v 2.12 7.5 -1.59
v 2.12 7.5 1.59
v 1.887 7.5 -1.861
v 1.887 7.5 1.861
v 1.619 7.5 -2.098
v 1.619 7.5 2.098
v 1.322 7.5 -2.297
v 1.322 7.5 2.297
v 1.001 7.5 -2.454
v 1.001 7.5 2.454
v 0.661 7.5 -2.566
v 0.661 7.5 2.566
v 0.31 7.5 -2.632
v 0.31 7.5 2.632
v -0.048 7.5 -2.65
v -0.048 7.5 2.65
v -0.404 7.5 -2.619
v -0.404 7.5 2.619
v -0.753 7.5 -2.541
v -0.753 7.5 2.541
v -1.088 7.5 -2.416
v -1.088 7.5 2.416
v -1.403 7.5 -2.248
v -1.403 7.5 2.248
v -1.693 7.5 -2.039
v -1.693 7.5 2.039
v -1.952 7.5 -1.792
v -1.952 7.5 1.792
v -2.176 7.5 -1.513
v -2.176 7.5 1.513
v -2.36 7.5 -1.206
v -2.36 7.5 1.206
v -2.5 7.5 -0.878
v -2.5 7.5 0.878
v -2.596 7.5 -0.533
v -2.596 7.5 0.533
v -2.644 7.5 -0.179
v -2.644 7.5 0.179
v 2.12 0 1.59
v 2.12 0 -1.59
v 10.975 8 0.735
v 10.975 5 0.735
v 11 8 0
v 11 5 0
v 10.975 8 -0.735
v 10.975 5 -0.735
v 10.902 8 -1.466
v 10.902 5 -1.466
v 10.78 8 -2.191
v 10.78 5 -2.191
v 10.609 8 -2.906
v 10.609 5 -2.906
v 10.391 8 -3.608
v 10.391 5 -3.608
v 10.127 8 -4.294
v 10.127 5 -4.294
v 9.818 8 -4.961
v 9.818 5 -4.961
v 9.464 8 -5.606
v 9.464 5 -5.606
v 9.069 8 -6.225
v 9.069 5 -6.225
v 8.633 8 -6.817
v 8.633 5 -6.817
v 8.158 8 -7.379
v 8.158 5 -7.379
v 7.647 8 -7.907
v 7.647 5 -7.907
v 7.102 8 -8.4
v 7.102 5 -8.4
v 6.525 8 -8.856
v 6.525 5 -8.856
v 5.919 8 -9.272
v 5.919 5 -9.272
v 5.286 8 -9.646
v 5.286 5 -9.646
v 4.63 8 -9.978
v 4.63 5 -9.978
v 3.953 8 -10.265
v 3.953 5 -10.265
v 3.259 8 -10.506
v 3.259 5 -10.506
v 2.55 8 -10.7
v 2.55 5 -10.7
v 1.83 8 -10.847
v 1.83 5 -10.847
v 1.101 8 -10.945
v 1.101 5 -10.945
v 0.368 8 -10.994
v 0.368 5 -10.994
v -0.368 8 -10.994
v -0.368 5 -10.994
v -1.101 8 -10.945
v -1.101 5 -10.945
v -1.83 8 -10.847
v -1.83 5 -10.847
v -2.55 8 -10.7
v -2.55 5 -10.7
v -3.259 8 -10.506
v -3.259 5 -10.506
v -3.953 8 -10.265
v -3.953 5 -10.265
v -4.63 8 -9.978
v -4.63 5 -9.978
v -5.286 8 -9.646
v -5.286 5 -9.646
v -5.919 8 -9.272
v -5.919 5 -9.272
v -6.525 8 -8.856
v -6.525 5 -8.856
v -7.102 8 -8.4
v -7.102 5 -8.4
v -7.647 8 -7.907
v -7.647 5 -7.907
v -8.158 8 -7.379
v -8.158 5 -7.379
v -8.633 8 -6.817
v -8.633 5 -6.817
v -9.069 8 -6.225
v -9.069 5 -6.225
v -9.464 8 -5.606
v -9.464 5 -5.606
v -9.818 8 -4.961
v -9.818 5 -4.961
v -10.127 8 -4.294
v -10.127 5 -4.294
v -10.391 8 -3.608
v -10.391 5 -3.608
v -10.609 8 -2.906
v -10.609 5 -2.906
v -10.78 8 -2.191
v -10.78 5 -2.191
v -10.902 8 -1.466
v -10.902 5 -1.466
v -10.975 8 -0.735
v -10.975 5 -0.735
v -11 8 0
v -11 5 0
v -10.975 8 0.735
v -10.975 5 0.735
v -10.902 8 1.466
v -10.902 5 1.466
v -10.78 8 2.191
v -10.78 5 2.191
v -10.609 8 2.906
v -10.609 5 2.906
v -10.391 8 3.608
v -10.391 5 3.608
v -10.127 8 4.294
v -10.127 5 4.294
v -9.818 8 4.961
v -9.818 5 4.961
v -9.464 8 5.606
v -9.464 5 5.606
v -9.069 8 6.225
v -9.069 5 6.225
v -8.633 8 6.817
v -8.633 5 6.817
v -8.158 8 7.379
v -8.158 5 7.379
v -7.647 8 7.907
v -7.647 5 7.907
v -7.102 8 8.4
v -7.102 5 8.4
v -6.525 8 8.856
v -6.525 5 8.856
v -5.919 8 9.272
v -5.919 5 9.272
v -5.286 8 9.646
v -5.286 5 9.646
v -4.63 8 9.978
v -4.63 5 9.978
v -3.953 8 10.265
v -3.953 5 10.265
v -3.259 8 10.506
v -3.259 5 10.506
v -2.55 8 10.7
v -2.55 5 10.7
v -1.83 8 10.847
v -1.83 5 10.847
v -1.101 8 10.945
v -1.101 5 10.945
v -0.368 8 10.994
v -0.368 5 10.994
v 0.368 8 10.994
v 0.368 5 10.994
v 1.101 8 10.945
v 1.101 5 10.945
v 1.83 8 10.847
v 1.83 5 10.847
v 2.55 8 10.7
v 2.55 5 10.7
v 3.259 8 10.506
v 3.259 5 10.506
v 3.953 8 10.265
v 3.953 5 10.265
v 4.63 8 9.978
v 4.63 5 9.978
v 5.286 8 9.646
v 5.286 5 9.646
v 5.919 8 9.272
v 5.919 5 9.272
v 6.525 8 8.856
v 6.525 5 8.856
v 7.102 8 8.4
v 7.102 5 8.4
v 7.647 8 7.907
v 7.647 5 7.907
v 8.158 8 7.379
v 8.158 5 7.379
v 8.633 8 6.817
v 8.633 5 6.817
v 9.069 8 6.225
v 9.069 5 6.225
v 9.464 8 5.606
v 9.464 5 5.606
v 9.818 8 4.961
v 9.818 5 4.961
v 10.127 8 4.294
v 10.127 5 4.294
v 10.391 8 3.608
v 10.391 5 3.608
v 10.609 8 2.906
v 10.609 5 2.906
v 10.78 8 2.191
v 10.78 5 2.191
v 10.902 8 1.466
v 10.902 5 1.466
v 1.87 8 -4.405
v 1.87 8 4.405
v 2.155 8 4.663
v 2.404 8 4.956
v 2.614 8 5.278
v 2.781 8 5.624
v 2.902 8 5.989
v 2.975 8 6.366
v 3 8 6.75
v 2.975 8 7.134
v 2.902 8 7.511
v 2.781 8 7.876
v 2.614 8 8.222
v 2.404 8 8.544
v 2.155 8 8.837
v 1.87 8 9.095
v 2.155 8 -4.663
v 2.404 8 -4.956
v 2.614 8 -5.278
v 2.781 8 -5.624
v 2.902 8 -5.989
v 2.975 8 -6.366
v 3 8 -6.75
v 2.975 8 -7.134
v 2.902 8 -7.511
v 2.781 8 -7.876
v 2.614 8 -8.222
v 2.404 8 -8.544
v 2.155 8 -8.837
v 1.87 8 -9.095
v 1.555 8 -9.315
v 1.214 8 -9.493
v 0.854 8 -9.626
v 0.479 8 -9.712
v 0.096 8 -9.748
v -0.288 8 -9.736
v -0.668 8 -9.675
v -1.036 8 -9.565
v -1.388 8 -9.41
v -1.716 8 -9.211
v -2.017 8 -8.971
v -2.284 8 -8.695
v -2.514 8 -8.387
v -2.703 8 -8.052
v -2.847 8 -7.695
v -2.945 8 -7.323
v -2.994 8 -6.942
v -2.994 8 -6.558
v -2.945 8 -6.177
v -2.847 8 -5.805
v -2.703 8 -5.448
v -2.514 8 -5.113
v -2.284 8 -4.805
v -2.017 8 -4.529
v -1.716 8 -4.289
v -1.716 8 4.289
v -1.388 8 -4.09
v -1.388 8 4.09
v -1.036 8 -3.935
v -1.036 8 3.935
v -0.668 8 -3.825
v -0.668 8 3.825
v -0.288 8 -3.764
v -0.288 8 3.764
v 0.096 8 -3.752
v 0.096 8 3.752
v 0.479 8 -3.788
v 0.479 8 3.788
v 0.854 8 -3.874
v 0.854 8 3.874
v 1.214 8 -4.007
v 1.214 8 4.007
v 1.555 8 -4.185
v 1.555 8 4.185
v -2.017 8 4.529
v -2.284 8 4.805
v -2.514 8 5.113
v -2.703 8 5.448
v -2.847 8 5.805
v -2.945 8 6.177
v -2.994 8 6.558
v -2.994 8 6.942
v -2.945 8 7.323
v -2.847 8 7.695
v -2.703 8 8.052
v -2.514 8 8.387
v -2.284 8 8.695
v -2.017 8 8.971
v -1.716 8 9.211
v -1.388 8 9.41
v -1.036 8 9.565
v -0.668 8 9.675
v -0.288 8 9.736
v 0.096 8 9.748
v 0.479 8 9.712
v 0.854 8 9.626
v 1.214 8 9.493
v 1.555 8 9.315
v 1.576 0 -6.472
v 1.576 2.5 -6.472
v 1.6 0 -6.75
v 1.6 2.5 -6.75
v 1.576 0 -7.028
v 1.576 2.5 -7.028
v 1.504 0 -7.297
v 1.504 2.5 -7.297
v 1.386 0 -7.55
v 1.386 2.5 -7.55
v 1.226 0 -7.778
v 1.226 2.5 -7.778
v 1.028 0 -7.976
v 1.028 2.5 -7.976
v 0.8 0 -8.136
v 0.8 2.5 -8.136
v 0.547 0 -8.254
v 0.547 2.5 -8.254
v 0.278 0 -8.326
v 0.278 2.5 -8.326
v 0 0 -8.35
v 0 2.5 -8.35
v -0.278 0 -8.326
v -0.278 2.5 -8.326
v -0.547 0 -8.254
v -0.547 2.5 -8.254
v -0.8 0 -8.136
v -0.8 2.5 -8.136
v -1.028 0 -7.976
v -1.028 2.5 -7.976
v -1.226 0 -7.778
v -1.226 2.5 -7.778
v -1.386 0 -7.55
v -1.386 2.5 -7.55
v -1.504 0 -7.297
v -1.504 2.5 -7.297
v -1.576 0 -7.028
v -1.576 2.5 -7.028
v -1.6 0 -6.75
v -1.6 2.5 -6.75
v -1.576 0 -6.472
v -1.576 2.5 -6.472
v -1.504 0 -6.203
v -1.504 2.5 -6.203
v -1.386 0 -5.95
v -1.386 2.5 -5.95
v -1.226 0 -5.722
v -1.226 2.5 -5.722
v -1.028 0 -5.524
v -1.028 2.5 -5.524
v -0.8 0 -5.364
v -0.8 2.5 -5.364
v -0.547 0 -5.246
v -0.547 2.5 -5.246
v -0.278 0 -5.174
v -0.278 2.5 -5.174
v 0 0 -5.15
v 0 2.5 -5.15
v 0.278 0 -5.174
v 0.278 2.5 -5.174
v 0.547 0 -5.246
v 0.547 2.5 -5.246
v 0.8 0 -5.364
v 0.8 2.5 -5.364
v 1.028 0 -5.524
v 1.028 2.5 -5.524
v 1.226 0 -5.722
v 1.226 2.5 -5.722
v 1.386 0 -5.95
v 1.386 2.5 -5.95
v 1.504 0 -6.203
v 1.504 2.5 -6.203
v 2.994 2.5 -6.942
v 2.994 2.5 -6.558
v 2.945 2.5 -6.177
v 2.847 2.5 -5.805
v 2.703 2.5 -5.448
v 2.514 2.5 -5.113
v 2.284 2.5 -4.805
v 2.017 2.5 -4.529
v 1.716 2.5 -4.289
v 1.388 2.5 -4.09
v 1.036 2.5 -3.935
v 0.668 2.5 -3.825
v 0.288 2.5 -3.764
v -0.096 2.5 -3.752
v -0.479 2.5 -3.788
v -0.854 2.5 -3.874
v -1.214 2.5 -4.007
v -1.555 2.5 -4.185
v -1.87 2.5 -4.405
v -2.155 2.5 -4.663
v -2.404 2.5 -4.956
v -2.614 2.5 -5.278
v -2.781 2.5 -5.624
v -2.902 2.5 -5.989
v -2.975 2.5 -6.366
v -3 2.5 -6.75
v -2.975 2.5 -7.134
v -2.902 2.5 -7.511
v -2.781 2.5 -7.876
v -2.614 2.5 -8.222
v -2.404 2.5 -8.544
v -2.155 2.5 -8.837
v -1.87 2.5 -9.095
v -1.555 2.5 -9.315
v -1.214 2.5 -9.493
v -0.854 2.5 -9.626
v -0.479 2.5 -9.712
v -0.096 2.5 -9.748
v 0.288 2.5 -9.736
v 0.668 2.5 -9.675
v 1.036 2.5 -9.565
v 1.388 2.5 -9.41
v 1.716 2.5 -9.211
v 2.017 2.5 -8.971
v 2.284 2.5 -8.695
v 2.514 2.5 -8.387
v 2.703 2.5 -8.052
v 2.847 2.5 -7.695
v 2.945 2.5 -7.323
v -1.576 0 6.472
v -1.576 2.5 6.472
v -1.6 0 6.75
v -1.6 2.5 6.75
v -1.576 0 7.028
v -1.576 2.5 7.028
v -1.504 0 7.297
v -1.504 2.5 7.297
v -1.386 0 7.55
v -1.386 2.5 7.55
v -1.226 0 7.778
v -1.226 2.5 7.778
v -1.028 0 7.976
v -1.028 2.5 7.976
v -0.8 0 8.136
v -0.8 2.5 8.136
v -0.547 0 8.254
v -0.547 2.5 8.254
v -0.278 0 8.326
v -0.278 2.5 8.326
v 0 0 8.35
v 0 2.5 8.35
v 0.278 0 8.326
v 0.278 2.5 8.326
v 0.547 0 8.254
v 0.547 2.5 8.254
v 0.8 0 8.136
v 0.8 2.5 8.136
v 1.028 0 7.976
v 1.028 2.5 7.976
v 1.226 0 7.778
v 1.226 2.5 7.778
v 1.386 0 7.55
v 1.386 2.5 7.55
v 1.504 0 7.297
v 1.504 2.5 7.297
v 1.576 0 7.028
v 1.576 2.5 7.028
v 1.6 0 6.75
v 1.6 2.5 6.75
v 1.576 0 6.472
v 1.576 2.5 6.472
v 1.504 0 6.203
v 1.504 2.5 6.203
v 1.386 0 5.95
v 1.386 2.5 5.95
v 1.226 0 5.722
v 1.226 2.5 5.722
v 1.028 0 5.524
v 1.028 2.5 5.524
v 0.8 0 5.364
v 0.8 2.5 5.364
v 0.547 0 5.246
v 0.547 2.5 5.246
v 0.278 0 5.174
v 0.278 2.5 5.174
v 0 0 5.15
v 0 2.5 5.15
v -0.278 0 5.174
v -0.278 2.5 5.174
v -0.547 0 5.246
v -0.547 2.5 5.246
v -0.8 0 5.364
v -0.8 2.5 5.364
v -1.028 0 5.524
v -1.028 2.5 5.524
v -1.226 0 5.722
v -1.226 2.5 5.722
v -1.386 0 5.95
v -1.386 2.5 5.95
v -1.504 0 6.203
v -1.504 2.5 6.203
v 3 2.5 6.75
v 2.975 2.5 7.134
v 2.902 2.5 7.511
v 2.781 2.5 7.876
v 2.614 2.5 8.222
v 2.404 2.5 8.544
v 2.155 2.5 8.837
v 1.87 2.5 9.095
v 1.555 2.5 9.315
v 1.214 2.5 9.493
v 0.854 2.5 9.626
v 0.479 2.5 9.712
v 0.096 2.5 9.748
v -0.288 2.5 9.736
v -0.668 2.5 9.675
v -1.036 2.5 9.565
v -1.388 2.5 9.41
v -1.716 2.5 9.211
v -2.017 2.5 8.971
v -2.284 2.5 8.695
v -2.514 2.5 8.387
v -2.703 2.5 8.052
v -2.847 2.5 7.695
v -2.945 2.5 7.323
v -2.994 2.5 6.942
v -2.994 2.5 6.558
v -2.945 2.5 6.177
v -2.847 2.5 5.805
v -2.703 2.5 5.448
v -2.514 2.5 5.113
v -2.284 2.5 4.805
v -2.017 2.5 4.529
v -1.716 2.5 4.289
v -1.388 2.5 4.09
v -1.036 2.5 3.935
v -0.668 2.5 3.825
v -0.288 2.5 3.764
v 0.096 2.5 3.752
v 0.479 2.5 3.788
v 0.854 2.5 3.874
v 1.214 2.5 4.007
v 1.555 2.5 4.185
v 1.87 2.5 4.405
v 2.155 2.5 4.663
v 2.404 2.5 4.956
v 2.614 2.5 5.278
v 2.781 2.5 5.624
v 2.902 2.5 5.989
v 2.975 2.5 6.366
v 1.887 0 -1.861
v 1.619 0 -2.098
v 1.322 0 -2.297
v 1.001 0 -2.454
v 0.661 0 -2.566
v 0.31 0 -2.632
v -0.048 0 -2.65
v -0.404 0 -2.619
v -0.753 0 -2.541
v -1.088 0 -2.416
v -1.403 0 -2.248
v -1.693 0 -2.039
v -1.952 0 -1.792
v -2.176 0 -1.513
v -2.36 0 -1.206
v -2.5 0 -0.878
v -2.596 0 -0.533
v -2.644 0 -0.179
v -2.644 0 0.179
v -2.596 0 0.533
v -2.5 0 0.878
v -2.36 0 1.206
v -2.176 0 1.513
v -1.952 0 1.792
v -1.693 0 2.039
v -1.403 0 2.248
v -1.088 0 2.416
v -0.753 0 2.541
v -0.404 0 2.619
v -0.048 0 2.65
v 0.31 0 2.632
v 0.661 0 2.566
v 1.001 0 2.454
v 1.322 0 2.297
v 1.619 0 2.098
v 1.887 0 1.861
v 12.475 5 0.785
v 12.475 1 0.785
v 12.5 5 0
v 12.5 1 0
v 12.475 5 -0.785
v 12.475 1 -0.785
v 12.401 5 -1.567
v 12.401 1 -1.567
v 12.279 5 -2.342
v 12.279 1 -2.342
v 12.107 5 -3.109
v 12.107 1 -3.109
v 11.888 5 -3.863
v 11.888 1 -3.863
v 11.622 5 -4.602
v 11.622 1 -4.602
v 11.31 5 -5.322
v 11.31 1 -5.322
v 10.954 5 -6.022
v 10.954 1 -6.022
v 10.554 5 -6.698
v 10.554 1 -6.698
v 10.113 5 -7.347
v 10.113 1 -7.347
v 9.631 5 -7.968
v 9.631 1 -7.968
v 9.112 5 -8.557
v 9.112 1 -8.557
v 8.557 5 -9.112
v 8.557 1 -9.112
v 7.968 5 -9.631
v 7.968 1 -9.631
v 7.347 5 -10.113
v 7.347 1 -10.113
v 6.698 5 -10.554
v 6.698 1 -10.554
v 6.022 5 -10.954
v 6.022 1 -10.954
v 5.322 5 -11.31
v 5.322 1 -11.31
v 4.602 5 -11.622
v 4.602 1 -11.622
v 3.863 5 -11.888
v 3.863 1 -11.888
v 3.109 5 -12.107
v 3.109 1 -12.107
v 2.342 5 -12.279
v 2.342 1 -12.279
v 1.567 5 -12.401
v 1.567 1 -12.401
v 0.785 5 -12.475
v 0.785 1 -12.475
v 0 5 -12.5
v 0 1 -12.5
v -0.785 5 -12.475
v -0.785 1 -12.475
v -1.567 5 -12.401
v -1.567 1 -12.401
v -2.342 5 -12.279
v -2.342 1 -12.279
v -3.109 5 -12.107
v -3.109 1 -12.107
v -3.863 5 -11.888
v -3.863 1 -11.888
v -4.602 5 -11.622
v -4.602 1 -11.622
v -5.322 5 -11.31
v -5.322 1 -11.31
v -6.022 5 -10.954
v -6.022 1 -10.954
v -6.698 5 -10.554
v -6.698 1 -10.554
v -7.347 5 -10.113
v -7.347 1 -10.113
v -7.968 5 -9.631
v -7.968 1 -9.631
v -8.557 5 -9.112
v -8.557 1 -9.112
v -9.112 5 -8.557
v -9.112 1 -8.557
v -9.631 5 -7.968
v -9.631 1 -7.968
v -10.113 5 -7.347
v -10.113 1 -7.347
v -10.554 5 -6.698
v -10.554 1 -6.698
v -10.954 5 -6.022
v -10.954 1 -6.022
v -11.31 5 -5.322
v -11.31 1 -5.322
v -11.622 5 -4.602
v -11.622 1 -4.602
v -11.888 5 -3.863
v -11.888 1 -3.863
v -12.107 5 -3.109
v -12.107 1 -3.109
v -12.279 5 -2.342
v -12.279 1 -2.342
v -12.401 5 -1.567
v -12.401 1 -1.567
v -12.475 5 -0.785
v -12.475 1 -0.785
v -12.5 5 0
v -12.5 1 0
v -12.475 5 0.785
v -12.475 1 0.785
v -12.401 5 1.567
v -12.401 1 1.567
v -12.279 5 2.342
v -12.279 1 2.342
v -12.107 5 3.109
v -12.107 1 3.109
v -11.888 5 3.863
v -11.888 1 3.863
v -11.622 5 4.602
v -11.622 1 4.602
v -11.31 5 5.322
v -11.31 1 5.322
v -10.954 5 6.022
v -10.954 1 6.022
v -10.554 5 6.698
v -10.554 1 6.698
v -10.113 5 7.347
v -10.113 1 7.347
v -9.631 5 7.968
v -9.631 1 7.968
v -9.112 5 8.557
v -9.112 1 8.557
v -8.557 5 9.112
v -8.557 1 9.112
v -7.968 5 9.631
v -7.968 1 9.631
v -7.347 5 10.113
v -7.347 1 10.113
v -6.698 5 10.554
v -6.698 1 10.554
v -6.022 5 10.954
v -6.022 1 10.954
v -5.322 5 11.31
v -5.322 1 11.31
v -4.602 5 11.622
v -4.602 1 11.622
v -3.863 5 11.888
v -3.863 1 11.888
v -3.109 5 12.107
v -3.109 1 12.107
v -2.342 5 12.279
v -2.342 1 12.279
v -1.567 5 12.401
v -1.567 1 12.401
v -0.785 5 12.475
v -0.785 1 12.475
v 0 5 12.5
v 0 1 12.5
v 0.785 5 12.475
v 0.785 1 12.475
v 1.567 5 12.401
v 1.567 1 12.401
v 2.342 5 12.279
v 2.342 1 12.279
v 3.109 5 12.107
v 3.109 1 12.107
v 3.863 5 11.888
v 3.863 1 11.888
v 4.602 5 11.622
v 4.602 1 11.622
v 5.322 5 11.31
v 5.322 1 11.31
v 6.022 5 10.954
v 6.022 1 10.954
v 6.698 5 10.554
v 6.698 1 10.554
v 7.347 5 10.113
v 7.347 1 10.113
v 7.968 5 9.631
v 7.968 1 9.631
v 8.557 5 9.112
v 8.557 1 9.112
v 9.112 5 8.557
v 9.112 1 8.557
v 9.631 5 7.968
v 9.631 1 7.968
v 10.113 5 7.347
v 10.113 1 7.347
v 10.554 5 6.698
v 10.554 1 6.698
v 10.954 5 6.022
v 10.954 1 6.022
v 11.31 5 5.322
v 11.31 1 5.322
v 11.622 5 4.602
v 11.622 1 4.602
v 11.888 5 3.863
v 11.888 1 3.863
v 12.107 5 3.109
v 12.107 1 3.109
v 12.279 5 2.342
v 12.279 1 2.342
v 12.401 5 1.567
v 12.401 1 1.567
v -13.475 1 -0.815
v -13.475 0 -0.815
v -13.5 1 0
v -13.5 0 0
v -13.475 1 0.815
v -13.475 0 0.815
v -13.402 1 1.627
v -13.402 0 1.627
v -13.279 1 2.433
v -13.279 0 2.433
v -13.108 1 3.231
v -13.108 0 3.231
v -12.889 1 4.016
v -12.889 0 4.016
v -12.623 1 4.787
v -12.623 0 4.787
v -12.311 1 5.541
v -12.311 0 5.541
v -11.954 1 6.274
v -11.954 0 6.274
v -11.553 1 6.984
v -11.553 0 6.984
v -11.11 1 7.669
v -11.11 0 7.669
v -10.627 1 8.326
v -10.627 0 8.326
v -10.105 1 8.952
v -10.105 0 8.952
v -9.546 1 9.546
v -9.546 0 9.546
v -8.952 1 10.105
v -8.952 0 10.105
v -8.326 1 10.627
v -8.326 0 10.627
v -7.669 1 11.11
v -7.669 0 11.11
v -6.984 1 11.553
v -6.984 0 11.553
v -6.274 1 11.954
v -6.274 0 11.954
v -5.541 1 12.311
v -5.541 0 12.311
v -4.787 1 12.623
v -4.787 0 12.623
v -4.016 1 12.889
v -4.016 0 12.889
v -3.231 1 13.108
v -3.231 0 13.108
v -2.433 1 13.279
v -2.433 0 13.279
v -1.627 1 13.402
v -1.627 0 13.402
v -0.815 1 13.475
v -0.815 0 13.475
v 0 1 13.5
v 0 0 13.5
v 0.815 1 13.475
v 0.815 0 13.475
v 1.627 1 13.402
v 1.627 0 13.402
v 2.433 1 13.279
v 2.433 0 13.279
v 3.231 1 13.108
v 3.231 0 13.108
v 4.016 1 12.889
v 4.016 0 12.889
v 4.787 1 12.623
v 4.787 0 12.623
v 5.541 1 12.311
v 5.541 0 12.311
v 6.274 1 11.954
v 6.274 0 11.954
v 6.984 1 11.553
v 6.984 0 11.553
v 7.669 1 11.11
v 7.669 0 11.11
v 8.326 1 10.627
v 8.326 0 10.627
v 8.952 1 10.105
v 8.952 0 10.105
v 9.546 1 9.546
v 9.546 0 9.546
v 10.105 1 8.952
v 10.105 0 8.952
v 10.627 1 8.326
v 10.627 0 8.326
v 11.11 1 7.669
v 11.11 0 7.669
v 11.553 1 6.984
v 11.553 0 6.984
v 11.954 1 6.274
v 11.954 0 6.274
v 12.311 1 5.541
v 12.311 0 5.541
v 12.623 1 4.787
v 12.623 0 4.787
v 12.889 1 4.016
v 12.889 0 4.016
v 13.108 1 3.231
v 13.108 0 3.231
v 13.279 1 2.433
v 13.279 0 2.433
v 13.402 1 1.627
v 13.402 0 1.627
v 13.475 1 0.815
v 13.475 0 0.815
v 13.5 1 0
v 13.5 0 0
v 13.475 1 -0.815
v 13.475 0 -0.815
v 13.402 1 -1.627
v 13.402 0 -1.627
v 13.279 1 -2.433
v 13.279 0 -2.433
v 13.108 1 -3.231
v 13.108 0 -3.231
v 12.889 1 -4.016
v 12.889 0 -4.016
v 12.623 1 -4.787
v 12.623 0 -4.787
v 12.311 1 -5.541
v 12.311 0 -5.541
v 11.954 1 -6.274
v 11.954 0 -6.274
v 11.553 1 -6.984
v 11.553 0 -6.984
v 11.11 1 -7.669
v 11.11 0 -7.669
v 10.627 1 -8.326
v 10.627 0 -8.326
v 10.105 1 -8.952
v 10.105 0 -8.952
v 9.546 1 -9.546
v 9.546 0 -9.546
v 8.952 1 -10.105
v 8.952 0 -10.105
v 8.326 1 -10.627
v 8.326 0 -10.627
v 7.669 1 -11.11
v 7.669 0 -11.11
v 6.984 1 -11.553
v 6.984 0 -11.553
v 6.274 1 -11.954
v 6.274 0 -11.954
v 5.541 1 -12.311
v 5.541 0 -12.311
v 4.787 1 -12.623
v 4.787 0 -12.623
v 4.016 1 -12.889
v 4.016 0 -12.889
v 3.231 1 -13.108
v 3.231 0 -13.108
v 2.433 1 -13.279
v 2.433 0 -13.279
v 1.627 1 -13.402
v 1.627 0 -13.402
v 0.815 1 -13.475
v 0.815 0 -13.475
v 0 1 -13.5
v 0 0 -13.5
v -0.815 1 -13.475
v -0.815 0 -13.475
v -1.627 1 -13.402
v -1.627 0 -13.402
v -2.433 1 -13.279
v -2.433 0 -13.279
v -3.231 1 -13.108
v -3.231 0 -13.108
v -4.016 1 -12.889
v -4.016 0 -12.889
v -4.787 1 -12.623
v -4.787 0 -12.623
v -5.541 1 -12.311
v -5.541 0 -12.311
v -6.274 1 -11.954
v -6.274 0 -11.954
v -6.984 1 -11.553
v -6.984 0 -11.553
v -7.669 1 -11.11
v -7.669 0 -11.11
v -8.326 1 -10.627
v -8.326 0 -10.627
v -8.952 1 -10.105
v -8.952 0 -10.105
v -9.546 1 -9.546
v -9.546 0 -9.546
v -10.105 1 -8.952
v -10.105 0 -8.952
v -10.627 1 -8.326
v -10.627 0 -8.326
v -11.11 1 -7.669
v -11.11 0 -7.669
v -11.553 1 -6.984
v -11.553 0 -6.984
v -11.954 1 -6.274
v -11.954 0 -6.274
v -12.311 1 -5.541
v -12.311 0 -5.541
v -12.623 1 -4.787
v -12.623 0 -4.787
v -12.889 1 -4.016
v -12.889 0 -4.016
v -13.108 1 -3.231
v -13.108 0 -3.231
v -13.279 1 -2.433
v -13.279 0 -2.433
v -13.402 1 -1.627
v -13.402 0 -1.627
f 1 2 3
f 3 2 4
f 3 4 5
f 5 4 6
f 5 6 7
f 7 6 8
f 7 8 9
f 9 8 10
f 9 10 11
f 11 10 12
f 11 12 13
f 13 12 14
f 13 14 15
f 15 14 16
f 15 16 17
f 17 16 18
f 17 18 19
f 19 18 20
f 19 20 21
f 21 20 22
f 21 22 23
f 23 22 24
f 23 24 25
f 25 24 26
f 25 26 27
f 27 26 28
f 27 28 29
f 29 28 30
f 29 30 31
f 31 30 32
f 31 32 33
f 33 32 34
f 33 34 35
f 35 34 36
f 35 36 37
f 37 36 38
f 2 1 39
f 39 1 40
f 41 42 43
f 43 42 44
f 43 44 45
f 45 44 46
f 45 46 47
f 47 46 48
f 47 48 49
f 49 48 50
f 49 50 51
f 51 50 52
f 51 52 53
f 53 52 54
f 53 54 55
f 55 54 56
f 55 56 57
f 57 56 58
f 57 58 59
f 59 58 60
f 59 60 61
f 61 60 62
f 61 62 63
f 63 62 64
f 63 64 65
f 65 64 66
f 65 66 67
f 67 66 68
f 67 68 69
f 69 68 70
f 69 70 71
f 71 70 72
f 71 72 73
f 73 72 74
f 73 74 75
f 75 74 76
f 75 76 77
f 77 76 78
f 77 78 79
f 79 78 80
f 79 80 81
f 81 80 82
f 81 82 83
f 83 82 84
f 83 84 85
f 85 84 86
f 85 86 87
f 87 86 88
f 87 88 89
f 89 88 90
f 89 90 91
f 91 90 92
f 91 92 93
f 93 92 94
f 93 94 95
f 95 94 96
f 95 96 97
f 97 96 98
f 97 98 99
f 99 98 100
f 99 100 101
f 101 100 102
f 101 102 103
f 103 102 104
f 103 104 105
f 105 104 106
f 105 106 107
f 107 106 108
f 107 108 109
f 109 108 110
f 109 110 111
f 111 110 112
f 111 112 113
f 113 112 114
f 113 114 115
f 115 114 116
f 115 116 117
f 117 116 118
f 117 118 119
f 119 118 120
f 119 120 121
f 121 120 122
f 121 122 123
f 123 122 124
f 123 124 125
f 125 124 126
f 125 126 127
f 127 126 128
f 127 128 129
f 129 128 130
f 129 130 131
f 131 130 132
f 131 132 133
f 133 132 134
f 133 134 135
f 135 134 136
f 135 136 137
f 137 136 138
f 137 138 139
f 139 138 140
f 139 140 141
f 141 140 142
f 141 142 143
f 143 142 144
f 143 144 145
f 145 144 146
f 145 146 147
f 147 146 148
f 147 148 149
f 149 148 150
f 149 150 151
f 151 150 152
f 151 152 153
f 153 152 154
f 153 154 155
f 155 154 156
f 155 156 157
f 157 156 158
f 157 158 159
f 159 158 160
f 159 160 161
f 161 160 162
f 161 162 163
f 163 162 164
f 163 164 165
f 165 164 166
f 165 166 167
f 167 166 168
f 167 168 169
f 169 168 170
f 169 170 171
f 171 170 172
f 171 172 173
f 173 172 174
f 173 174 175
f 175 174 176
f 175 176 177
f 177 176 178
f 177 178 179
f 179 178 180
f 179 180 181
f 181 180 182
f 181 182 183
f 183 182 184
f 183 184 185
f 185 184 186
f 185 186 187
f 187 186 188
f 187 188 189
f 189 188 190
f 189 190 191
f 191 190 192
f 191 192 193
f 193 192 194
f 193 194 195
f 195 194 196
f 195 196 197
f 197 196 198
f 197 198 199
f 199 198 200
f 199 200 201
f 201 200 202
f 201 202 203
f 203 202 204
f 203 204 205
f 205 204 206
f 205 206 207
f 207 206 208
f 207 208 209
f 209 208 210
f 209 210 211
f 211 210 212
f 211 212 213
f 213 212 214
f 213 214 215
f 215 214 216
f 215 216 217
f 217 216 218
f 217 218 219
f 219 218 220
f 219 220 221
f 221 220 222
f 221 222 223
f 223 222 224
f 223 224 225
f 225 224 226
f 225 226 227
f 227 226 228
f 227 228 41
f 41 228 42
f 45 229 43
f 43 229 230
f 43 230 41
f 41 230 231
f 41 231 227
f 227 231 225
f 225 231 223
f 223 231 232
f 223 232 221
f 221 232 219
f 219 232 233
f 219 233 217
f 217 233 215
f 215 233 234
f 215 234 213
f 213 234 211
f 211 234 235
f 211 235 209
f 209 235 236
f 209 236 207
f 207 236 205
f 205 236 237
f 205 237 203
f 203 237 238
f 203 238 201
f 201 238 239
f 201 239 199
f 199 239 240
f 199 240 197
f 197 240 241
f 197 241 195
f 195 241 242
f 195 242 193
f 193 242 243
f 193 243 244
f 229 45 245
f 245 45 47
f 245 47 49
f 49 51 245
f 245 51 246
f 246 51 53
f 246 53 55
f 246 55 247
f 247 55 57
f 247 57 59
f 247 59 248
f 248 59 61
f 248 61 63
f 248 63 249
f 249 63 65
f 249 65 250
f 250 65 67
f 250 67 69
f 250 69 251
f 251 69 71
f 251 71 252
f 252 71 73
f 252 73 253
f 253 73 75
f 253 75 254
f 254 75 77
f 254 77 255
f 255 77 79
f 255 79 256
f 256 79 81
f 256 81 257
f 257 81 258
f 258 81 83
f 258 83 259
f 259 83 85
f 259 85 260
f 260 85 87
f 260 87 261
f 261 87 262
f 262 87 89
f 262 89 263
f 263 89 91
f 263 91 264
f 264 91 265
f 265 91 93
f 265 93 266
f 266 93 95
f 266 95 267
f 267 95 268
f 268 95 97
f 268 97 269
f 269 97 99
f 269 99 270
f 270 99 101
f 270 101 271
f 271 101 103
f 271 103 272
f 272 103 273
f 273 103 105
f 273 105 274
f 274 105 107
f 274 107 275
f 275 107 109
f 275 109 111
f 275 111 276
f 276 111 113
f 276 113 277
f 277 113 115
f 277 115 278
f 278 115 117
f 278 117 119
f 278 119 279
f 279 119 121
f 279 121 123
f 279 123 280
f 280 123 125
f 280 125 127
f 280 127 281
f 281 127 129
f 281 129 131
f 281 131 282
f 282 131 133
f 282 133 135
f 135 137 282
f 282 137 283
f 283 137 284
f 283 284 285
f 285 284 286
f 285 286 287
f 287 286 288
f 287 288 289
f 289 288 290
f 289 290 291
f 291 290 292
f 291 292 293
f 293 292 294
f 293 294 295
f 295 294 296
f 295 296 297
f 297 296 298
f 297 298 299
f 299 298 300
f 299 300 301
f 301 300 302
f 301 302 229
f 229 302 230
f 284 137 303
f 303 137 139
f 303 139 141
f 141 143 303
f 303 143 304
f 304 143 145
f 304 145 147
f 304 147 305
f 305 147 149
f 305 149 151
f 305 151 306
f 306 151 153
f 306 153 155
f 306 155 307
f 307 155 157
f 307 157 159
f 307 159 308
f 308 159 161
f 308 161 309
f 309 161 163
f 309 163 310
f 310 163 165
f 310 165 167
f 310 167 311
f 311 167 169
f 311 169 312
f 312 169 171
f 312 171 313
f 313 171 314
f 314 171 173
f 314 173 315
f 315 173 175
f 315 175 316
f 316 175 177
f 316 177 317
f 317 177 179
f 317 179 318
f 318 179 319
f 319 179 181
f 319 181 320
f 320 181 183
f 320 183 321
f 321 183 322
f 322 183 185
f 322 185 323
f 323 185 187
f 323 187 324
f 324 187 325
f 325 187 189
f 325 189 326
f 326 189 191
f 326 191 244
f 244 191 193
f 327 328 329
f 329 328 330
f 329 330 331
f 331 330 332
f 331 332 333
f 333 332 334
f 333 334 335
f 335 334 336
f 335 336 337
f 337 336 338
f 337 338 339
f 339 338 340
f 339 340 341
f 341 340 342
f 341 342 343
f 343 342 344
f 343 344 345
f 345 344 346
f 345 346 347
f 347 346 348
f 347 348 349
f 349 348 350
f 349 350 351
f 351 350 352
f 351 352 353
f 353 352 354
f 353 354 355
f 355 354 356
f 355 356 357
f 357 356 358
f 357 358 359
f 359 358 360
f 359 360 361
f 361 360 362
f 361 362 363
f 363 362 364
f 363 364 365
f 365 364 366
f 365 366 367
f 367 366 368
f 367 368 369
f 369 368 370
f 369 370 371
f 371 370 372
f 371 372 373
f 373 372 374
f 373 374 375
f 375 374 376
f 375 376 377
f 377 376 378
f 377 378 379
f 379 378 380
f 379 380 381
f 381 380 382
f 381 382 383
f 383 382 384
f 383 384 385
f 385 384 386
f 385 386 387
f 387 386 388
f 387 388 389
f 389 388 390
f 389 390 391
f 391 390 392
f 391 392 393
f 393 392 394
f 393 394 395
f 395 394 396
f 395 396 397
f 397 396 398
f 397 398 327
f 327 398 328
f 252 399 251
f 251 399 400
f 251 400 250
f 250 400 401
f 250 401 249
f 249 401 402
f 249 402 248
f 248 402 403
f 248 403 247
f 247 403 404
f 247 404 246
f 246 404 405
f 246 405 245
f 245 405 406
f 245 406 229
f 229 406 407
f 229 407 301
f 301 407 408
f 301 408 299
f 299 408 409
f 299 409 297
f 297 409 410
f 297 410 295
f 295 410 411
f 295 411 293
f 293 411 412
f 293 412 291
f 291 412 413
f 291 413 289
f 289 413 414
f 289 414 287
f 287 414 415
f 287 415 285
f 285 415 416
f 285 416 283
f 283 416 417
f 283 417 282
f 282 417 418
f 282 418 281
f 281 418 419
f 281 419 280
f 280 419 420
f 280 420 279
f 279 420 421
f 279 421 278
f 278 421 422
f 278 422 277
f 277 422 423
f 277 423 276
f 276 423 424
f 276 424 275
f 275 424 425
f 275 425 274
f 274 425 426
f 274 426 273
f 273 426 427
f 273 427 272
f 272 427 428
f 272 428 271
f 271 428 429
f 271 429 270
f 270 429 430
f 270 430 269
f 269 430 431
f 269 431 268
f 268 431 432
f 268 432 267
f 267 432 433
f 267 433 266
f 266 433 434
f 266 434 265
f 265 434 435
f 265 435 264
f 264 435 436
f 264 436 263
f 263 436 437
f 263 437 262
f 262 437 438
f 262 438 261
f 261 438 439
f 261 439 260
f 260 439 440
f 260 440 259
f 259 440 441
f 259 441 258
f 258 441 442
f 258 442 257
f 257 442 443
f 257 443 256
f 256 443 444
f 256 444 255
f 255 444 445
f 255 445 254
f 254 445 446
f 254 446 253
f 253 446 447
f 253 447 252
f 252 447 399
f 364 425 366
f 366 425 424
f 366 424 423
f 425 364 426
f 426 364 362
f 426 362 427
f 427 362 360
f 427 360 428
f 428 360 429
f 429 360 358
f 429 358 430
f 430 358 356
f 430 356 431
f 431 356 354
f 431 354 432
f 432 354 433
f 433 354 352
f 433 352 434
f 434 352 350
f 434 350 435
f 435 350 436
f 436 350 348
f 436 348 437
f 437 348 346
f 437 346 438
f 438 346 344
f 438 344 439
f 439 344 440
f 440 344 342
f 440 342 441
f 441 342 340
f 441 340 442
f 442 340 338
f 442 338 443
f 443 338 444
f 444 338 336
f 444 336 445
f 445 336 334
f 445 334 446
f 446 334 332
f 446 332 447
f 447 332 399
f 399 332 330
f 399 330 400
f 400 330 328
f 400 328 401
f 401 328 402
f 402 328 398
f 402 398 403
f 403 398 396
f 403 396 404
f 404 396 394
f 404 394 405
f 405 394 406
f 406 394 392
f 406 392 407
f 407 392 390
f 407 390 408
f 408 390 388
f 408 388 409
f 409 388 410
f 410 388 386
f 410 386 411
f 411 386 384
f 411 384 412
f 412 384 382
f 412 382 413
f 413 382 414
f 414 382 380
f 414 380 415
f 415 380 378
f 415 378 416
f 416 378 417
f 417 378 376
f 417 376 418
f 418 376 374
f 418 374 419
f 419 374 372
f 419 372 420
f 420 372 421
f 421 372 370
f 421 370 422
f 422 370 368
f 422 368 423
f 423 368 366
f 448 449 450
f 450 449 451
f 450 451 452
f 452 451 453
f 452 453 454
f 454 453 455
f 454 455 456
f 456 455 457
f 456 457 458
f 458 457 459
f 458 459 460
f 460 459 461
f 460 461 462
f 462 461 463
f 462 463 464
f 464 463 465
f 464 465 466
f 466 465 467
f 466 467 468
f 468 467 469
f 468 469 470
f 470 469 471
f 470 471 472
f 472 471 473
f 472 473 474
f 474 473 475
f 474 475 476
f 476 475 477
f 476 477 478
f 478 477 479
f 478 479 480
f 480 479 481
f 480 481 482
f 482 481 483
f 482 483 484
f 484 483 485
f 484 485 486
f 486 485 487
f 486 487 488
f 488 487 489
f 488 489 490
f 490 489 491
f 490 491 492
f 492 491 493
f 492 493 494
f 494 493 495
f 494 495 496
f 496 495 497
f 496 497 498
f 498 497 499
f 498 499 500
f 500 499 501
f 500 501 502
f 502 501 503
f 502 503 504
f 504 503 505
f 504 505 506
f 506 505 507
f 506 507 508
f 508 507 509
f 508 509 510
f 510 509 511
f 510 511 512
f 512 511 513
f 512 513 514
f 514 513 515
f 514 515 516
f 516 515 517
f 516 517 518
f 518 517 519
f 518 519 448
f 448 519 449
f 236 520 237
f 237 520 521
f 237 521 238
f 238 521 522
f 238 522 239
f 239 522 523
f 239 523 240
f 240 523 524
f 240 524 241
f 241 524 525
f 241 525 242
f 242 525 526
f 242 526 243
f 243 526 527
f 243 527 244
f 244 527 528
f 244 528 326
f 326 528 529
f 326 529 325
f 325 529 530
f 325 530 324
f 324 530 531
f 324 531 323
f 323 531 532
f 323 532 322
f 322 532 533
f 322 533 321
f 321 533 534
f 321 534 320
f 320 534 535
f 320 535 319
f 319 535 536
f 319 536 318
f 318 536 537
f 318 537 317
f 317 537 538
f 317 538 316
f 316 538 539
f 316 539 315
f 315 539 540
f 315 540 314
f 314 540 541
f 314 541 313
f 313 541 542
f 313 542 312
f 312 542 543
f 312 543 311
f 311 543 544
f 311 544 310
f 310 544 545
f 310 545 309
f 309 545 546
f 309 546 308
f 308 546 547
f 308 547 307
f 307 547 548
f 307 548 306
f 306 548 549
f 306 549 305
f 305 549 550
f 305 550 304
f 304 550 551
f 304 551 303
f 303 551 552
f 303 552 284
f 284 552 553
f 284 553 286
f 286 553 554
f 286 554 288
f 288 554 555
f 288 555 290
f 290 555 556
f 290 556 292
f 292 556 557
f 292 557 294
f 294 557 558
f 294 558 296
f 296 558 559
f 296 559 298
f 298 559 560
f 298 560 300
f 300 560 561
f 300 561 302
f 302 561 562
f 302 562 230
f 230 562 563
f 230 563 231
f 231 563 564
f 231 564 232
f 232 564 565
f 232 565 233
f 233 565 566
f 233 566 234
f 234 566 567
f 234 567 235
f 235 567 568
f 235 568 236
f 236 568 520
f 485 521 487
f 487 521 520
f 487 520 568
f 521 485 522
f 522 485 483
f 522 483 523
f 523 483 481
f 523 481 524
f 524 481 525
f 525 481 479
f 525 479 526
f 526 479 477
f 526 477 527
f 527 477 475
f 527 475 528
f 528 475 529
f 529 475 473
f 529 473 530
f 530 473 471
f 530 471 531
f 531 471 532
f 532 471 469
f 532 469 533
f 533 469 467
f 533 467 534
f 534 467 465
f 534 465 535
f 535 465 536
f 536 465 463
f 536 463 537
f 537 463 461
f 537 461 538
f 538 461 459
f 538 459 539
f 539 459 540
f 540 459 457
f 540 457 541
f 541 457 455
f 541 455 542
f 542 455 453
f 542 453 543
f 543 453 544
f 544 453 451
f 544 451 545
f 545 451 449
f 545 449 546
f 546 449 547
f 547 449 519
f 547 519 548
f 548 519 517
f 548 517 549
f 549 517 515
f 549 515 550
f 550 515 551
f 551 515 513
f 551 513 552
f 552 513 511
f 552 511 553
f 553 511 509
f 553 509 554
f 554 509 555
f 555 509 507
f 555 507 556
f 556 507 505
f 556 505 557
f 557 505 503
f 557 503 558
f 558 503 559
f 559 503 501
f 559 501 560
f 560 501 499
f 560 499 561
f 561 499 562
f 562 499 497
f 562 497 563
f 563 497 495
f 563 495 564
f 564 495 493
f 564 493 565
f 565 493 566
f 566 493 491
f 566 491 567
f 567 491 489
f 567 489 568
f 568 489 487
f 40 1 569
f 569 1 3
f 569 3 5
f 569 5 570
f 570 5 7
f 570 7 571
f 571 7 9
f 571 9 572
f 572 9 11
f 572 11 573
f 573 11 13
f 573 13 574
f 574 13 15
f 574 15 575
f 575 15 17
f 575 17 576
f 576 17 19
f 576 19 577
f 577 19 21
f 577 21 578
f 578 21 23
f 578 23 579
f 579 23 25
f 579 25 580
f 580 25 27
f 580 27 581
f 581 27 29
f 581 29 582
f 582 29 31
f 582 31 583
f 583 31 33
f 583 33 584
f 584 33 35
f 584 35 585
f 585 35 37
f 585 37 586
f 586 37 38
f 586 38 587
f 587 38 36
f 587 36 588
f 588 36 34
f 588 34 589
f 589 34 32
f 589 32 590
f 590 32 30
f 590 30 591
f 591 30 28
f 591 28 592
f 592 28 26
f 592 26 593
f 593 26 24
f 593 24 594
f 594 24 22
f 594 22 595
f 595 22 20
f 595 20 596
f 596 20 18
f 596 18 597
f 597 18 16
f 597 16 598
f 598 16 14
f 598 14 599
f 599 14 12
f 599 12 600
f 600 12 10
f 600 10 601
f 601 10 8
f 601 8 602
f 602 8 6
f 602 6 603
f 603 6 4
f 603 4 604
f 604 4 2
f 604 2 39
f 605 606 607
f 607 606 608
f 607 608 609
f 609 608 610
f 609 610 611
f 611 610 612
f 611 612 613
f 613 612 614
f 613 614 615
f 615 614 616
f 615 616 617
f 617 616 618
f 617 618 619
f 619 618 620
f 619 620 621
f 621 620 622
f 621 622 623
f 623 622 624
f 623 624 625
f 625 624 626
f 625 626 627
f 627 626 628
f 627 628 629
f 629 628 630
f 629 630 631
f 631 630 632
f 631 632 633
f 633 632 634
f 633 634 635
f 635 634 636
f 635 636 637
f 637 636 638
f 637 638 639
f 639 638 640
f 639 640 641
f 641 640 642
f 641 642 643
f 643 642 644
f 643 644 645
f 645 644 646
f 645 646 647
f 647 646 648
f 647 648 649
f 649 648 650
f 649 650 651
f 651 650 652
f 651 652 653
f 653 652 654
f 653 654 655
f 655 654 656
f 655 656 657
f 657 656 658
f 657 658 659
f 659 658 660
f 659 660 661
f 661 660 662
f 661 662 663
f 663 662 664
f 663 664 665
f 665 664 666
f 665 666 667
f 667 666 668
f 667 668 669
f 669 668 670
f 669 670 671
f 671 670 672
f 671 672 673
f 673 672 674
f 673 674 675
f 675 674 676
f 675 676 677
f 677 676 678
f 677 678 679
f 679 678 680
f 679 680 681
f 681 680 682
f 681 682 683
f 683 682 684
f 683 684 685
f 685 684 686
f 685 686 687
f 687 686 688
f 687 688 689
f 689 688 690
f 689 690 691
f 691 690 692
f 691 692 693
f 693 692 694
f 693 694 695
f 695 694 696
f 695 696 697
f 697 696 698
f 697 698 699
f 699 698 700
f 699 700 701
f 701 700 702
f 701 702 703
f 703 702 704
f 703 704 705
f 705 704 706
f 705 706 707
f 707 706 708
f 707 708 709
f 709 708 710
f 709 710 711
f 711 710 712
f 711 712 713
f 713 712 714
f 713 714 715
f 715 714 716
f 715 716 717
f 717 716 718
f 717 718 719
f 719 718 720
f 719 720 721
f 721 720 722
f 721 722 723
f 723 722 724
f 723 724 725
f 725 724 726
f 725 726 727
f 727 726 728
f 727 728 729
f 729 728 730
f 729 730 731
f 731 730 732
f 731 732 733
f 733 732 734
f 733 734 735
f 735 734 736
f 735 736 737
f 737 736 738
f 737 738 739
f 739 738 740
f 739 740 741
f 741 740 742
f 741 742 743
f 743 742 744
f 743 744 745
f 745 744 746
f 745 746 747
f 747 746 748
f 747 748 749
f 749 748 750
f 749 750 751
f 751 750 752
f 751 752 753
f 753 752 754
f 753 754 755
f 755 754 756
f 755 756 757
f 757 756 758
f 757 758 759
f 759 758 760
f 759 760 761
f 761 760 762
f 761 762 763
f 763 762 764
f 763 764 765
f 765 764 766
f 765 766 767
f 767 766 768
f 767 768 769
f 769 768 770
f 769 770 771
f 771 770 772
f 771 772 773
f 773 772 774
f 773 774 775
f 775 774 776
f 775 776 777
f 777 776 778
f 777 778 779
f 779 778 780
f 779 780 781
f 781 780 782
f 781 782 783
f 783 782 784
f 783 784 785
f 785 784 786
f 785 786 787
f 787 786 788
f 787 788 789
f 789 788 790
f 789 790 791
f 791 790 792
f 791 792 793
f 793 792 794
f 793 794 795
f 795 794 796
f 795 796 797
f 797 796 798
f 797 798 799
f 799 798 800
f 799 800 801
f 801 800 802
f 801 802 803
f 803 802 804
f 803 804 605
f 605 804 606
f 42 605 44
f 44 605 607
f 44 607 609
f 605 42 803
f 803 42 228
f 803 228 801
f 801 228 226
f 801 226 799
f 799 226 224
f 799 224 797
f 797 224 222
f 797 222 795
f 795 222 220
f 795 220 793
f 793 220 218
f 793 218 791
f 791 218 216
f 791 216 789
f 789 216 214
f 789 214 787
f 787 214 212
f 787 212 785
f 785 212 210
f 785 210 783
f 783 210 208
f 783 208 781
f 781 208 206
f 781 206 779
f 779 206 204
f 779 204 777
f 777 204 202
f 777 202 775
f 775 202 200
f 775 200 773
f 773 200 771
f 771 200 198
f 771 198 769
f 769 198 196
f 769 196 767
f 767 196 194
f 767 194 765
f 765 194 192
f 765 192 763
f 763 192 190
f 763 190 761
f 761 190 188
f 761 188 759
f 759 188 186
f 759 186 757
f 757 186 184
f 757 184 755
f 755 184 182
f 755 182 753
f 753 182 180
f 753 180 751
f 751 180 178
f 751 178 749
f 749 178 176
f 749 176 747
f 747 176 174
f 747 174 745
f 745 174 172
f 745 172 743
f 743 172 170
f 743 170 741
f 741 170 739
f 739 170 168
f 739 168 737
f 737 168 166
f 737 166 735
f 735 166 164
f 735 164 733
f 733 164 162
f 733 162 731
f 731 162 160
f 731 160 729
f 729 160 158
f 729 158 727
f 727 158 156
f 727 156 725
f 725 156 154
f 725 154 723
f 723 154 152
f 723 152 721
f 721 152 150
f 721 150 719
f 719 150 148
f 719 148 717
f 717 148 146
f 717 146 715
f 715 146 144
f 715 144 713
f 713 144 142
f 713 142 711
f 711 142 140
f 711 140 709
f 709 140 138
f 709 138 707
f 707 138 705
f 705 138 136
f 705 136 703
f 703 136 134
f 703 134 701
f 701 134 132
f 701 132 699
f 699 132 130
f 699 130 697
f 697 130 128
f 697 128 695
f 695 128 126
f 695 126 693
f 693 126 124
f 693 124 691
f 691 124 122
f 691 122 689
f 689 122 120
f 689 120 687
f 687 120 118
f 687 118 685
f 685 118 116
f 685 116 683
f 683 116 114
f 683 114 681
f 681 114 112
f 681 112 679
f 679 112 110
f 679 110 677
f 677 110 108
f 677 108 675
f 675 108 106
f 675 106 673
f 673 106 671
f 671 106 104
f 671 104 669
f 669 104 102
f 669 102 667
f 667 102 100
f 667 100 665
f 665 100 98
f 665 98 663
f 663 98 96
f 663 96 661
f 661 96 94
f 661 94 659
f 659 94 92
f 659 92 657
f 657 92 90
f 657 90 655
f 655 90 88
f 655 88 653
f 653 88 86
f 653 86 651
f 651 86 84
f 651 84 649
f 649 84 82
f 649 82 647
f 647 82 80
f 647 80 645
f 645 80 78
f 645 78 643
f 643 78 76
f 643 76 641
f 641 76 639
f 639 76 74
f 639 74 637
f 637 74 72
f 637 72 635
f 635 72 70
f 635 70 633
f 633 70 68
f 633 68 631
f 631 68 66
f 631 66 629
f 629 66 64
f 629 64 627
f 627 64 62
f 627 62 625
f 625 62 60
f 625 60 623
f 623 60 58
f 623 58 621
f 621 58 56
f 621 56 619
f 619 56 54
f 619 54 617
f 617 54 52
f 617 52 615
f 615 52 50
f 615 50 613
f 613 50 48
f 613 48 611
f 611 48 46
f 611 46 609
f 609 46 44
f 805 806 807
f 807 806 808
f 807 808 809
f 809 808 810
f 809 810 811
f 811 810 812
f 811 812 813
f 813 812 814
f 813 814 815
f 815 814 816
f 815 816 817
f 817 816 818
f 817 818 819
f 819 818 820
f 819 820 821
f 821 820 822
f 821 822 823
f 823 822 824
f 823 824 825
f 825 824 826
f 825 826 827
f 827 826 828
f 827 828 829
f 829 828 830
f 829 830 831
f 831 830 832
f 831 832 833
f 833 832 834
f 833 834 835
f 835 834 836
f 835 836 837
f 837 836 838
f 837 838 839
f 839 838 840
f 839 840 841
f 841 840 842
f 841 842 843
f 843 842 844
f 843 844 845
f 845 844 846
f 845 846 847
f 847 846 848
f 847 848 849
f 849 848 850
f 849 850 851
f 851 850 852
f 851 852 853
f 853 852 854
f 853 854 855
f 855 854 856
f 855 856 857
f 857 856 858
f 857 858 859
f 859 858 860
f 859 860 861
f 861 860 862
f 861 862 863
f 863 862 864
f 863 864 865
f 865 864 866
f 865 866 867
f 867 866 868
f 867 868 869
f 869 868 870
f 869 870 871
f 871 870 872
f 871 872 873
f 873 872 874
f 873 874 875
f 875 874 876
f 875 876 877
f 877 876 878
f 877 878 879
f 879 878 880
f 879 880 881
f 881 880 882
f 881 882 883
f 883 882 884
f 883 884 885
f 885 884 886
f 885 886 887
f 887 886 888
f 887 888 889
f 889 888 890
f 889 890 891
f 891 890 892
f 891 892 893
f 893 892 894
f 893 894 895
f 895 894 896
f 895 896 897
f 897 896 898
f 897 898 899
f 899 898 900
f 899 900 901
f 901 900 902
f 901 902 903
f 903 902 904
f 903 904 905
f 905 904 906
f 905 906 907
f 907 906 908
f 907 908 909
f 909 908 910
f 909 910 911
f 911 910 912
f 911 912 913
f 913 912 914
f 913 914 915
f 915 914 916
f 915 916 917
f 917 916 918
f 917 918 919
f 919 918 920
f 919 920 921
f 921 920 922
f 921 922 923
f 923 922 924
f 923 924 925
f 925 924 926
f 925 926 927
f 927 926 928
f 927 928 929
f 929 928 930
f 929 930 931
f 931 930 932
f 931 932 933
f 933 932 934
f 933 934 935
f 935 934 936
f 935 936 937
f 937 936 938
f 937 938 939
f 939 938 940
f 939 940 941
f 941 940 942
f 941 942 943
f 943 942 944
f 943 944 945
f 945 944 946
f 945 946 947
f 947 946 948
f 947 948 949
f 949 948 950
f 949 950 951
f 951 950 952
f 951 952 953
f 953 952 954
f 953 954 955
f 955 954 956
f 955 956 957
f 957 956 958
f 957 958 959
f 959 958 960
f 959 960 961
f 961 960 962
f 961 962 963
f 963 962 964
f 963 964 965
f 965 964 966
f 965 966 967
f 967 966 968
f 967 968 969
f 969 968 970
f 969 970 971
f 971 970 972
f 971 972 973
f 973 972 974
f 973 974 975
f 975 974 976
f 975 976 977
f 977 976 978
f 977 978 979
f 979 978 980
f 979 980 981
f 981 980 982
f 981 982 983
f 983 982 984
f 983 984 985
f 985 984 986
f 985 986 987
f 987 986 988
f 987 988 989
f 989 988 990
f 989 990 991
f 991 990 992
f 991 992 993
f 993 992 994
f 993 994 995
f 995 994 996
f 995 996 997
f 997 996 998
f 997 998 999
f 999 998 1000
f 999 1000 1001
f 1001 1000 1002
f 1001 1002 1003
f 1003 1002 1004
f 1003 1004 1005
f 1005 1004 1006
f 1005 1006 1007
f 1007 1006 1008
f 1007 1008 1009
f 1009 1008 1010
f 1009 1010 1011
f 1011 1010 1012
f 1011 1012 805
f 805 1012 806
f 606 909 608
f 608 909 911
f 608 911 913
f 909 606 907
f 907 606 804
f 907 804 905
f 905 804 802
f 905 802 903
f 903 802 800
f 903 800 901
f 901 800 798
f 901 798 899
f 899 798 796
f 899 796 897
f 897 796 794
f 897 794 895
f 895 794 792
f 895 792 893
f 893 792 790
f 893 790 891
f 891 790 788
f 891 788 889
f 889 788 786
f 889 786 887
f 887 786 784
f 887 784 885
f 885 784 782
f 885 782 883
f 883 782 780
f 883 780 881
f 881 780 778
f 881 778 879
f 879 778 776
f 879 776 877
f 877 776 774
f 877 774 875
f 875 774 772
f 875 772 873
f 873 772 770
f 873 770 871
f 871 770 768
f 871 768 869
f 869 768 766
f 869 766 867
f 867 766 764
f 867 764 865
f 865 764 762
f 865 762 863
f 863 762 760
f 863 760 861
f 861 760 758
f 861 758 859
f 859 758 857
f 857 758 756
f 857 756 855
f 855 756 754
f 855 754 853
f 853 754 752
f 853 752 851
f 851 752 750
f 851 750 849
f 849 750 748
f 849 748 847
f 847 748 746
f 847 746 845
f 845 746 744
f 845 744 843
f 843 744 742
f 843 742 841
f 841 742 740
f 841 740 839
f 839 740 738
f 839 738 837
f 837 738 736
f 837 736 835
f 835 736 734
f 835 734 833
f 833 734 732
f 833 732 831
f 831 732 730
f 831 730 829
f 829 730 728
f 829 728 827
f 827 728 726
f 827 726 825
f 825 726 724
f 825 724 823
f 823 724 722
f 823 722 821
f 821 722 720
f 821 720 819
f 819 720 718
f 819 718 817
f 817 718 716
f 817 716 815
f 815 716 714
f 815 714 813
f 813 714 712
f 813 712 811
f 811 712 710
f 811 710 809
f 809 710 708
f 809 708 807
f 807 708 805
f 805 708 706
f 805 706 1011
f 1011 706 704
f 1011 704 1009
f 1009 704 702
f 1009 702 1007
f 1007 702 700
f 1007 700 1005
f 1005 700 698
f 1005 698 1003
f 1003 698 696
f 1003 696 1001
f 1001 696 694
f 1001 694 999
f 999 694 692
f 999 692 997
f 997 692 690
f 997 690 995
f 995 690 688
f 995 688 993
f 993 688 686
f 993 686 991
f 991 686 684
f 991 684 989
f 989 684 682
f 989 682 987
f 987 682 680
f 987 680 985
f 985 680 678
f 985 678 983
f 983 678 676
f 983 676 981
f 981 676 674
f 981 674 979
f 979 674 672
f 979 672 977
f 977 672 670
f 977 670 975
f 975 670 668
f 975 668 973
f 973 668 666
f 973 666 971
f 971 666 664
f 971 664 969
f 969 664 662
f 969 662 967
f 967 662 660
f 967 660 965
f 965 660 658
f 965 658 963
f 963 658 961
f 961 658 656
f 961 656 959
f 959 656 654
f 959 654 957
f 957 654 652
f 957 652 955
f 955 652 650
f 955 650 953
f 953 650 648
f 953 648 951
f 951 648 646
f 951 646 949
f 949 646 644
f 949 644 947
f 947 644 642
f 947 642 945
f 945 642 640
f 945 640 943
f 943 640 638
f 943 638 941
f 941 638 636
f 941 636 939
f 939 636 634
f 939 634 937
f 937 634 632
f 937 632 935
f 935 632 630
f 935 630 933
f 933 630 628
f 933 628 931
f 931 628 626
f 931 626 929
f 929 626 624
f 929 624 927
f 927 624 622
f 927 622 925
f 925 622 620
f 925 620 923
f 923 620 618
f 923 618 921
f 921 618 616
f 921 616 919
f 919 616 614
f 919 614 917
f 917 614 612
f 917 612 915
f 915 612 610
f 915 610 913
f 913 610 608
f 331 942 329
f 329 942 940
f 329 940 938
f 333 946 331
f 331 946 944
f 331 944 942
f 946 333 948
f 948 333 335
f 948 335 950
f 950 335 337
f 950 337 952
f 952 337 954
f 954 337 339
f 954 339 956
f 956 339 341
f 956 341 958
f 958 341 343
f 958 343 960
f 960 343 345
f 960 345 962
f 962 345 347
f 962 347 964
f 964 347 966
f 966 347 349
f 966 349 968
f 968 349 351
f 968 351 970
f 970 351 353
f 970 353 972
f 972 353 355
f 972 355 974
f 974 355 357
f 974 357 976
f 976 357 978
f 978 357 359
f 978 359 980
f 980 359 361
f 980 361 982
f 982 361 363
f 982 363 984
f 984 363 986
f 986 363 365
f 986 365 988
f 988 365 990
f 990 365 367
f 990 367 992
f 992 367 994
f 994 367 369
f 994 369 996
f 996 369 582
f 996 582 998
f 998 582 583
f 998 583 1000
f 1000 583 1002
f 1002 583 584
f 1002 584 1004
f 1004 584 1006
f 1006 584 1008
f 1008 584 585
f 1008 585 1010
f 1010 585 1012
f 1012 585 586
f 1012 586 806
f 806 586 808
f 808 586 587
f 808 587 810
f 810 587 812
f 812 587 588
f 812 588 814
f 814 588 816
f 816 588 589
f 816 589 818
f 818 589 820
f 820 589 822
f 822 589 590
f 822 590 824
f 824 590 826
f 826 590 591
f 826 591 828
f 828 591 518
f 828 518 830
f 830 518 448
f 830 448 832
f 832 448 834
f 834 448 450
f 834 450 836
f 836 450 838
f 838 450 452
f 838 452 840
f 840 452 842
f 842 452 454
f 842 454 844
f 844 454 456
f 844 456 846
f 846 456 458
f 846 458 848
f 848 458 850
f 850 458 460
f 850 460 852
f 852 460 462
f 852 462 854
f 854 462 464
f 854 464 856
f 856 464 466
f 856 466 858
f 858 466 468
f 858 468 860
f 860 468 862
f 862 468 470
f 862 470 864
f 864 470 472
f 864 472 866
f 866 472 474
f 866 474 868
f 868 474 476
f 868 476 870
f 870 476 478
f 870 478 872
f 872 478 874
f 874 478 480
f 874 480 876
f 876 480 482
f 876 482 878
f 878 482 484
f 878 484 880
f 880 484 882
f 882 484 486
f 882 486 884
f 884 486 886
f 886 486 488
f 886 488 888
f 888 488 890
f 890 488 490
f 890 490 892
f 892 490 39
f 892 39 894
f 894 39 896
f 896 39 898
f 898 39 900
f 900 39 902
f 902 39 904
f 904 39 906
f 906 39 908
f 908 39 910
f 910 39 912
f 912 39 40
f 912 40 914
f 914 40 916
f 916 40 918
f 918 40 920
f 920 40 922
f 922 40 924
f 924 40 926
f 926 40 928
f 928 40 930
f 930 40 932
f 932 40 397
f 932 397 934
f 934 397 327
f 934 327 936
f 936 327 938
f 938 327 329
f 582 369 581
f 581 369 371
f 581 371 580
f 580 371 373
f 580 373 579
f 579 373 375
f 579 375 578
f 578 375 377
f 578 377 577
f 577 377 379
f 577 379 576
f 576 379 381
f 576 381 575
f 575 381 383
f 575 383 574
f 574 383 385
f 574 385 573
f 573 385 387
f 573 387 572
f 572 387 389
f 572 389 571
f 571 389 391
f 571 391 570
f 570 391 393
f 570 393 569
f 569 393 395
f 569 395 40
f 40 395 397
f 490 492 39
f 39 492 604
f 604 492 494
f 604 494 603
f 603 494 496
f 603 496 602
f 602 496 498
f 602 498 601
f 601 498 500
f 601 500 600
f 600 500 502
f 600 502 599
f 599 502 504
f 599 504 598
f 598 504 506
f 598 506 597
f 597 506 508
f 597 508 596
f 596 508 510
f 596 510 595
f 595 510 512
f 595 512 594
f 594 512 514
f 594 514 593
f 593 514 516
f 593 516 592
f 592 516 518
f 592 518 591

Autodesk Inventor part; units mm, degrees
ref_plane "YZ Plane" through (0, 0, 0) normal (1, 0, 0) x (0, 1, 0)
ref_plane "XZ Plane" through (0, 0, 0) normal (0, 1, 0) x (-1, 0, 0)
ref_plane "XY Plane" through (0, 0, 0) normal (0, 0, 1) x (1, 0, 0)
sketch "Szkic1" plane through (0, 0, 0) normal (0, 1, 0) x (-1, 0, 0)
  circle A0 centre (0, 0) radius 13.5
  dimension "d0" = 27
extrude "Wyciągnięcie proste1" add sketch "Szkic1" along normal blind 1
sketch "Szkic2" plane through (0, 1, 0) normal (0, 1, 0) x (1, 0, 0)
  circle A0 centre (0, 0) radius 12.5
  dimension "d3" = 25
extrude "Wyciągnięcie proste2" add sketch "Szkic2" along normal blind 4
sketch "Szkic3" plane through (0, 5, 0) normal (0, 1, 0) x (1, 0, 0)
  arc A0 (2.12, 1.59) -> (2.12, -1.59) centre (0, 0) ccw
  line L0 (2.12, -1.59) -> (2.12, 1.59)
  dimension "d6" = 5.3
  dimension "d7" = 2.12
extrude "Wyciągnięcie proste3" cut sketch "Szkic3" against normal through all
sketch "Szkic4" plane through (0, 5, 0) normal (0, 1, 0) x (1, 0, 0)
  circle A0 centre (0, -6.75) radius 3
  point P0 (0, 0)
  dimension "d10" = 6
extrude "Wyciągnięcie proste4" cut sketch "Szkic4" against normal blind 2.5
sketch "Szkic5" plane through (0, 2.5, 6.75) normal (0, 1, 0) x (1, 0, 0)
  circle A0 centre (0, 0) radius 1.6
  point P0 (0, 6.75)
  dimension "d13" = 3.2
extrude "Wyciągnięcie proste5" cut sketch "Szkic5" against normal blind 3.5
pattern_circular "Szyk kołowy1" count 2 over 360 about axis through (0, 1, 0) along (0, 1, 0) of "Wyciągnięcie proste4", "Wyciągnięcie proste5"
sketch "Szkic6" plane through (0, 5, 0) normal (0, 1, 0) x (1, 0, 0)
  circle A0 centre (0, 0) radius 11
  circle A1 centre (0, 6.75) radius 3 projected
  circle A2 centre (0, 6.75) radius 3
  circle A3 centre (0, -6.75) radius 3 projected
  circle A4 centre (0, -6.75) radius 3
  arc A5 (2.12, 1.59) -> (2.12, -1.59) centre (0, 0) ccw
  line L0 (2.12, 1.59) -> (2.12, -1.59) projected
  line L1 (2.12, -1.59) -> (2.12, 1.59)
  dimension "d19" = 22
extrude "Wyciągnięcie proste6" add sketch "Szkic6" along normal blind 3
sketch "Szkic7" plane through (0, 8, 0) normal (0, 1, 0) x (1, 0, 0)
  arc A0 (2.12, 1.59) -> (2.12, -1.59) centre (0, 0) ccw
  line L0 (2.12, 1.59) -> (2.12, -1.59) projected
  line L1 (2.12, -1.59) -> (2.12, 1.59)
extrude "Wyciągnięcie proste7" add sketch "Szkic7" against normal blind 0.5
properties part number "_Drukowanie 3D"
